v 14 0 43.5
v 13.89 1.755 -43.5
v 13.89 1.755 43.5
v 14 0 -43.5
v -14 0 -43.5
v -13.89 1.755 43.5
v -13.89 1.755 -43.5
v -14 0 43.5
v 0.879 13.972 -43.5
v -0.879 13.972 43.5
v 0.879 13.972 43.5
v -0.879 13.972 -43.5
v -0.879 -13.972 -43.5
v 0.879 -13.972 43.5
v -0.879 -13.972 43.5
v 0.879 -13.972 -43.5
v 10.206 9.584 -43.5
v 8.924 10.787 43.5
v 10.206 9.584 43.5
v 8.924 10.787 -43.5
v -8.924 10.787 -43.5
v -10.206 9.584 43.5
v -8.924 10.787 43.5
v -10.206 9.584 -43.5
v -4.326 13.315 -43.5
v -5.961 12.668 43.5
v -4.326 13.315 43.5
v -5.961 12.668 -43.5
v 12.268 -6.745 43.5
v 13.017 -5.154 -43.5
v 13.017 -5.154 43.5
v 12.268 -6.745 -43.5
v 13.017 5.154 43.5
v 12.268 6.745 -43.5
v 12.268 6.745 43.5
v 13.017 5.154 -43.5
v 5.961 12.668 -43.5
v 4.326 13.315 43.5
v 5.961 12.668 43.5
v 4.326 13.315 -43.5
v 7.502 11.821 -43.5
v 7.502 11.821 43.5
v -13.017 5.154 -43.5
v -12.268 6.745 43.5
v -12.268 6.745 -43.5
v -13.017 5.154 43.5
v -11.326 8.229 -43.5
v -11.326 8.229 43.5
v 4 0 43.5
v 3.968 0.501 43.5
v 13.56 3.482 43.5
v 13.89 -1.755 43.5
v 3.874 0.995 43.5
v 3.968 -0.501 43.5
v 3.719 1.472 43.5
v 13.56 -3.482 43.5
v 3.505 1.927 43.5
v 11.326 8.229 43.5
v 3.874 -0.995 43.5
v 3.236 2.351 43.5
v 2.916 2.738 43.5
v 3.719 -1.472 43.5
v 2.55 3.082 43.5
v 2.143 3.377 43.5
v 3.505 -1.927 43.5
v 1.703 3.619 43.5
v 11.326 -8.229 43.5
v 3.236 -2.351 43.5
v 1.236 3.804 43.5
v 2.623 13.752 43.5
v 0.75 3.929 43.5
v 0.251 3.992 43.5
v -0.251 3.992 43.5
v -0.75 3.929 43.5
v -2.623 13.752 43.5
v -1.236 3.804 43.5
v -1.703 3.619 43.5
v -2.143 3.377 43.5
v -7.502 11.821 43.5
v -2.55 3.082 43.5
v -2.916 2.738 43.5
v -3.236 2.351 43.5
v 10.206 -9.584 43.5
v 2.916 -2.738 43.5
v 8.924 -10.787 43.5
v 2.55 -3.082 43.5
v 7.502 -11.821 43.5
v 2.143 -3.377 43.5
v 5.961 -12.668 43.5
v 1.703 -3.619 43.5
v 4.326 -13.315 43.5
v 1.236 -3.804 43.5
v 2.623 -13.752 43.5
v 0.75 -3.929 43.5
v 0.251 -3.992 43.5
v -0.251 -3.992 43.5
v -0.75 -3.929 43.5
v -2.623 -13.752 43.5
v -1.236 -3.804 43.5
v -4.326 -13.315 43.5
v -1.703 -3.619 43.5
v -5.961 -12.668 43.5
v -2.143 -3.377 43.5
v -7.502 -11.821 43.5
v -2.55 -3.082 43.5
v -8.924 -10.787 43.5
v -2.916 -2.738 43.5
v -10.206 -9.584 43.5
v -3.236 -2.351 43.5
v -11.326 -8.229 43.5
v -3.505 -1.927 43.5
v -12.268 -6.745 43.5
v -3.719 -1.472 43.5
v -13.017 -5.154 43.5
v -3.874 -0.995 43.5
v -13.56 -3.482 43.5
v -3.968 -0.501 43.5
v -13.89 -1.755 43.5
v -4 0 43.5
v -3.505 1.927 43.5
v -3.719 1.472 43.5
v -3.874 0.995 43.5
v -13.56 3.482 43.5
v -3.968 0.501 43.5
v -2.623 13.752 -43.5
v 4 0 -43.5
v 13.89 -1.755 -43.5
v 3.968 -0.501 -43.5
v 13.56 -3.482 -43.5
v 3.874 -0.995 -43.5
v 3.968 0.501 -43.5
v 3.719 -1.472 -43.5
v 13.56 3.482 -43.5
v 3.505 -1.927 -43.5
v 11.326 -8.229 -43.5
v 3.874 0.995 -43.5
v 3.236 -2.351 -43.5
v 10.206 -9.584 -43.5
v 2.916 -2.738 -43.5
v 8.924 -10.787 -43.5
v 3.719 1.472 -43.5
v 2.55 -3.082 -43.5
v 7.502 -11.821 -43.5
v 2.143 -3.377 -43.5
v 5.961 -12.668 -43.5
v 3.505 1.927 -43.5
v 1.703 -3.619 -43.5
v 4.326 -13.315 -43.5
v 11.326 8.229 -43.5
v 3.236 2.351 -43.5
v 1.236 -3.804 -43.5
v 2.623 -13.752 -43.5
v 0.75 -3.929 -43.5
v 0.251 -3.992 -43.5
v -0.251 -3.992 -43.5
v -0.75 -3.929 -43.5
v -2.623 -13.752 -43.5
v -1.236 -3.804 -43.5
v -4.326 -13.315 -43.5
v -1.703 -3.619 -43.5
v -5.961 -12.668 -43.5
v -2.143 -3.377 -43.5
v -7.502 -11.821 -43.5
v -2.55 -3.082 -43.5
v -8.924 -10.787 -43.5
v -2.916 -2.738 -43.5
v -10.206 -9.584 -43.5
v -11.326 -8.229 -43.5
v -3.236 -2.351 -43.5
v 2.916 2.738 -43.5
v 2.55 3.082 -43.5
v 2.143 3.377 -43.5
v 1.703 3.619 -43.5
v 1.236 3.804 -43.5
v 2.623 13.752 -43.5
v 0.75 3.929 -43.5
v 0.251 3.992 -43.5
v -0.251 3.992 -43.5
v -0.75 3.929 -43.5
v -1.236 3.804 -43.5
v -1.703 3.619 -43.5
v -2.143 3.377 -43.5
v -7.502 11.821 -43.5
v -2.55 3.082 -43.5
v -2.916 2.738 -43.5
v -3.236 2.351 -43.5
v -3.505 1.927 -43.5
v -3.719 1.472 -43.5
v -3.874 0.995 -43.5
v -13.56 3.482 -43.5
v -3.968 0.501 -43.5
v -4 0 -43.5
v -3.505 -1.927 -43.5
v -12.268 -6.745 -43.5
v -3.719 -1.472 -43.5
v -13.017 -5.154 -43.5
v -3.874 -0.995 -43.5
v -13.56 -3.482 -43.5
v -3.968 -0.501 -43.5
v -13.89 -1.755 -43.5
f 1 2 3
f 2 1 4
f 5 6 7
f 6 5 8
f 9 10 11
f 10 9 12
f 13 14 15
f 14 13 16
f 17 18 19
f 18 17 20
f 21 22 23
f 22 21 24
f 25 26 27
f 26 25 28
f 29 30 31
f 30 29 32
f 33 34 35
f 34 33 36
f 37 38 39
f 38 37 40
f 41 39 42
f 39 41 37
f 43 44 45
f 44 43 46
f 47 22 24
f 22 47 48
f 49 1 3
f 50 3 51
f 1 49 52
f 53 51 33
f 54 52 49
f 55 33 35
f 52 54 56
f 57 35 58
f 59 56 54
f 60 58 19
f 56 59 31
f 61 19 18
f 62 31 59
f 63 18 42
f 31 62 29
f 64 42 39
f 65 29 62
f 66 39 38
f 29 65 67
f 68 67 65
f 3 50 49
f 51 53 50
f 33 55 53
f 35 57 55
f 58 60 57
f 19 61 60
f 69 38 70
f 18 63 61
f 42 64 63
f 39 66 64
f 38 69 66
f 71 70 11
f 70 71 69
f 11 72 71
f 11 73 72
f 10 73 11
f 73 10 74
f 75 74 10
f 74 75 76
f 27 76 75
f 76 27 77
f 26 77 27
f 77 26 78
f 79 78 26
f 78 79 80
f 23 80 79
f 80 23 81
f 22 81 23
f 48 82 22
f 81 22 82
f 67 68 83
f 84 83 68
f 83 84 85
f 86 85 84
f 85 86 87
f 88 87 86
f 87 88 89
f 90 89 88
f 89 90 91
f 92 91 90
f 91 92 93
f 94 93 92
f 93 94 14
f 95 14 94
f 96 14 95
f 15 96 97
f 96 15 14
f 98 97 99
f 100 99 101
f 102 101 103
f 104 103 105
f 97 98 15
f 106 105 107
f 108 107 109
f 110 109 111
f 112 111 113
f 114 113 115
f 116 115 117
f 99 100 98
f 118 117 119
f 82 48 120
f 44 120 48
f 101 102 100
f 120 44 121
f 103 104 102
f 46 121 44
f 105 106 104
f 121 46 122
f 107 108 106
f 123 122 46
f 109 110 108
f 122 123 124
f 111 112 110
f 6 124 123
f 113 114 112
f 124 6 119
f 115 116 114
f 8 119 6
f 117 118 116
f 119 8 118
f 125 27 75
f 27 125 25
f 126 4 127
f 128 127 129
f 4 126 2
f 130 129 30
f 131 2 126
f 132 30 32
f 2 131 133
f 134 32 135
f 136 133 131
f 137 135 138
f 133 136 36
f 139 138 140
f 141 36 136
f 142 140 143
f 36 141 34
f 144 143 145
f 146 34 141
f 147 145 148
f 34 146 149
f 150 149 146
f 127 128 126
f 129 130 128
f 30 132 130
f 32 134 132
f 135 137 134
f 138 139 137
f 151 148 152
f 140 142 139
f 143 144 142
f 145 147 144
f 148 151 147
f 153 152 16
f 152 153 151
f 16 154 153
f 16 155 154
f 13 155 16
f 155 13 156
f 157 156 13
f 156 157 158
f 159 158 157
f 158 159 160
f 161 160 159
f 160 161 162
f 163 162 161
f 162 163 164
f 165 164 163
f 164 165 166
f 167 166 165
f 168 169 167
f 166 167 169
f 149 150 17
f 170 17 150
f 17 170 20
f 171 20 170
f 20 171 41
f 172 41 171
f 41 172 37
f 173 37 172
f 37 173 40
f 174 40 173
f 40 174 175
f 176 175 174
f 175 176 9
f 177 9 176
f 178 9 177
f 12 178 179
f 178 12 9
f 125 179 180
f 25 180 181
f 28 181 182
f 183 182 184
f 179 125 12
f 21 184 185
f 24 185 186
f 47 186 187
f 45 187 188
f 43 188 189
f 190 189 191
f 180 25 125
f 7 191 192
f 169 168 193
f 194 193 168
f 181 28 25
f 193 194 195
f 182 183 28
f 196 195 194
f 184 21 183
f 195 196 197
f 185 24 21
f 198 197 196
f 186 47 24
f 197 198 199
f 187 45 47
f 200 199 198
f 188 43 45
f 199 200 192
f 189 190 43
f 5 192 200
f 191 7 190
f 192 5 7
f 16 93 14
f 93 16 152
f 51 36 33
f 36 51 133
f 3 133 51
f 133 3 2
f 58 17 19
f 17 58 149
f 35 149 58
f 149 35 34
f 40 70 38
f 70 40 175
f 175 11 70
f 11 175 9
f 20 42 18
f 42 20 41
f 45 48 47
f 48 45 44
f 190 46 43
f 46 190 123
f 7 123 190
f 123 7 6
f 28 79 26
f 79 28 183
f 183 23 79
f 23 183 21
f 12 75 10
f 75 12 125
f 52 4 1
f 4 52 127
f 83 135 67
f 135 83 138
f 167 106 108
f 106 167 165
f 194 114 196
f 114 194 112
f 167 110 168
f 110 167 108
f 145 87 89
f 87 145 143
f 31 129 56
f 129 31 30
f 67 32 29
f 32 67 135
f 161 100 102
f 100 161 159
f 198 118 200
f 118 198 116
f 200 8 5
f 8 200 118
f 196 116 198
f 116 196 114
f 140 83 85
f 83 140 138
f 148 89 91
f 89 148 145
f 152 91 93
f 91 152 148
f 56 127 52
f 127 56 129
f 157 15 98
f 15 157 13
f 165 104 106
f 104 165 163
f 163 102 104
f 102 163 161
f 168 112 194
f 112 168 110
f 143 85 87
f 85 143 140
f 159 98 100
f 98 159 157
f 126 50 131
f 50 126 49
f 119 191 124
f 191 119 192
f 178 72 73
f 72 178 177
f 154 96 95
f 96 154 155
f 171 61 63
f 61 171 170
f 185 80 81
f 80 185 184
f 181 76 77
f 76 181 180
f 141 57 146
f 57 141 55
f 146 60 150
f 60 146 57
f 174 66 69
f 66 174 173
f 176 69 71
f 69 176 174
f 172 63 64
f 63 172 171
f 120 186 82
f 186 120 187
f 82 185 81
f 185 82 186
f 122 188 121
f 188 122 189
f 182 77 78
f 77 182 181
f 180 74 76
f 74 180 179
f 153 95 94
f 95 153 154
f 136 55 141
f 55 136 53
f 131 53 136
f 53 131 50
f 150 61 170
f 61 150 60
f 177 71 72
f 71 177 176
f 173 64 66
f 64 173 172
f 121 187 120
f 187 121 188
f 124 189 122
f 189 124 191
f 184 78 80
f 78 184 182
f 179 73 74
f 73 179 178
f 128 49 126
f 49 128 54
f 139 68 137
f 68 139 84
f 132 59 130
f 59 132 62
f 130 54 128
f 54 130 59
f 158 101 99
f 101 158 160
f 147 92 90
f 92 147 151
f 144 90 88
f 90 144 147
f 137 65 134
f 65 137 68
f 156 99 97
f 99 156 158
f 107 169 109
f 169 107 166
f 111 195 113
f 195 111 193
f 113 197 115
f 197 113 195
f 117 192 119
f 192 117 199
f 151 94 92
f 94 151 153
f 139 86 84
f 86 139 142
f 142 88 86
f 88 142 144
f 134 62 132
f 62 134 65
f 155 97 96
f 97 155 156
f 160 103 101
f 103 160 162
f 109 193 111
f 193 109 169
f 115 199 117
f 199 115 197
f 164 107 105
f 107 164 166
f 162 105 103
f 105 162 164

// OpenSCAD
$fn = 50;


difference() {
	union() {
		translate(v = [0, 0, -43.5000000000]) {
			cylinder(h = 87, r = 14.0000000000);
		}
	}
	union() {
		translate(v = [0, 0, -100.0000000000]) {
			cylinder(h = 200, r = 4.0000000000);
		}
	}
}
